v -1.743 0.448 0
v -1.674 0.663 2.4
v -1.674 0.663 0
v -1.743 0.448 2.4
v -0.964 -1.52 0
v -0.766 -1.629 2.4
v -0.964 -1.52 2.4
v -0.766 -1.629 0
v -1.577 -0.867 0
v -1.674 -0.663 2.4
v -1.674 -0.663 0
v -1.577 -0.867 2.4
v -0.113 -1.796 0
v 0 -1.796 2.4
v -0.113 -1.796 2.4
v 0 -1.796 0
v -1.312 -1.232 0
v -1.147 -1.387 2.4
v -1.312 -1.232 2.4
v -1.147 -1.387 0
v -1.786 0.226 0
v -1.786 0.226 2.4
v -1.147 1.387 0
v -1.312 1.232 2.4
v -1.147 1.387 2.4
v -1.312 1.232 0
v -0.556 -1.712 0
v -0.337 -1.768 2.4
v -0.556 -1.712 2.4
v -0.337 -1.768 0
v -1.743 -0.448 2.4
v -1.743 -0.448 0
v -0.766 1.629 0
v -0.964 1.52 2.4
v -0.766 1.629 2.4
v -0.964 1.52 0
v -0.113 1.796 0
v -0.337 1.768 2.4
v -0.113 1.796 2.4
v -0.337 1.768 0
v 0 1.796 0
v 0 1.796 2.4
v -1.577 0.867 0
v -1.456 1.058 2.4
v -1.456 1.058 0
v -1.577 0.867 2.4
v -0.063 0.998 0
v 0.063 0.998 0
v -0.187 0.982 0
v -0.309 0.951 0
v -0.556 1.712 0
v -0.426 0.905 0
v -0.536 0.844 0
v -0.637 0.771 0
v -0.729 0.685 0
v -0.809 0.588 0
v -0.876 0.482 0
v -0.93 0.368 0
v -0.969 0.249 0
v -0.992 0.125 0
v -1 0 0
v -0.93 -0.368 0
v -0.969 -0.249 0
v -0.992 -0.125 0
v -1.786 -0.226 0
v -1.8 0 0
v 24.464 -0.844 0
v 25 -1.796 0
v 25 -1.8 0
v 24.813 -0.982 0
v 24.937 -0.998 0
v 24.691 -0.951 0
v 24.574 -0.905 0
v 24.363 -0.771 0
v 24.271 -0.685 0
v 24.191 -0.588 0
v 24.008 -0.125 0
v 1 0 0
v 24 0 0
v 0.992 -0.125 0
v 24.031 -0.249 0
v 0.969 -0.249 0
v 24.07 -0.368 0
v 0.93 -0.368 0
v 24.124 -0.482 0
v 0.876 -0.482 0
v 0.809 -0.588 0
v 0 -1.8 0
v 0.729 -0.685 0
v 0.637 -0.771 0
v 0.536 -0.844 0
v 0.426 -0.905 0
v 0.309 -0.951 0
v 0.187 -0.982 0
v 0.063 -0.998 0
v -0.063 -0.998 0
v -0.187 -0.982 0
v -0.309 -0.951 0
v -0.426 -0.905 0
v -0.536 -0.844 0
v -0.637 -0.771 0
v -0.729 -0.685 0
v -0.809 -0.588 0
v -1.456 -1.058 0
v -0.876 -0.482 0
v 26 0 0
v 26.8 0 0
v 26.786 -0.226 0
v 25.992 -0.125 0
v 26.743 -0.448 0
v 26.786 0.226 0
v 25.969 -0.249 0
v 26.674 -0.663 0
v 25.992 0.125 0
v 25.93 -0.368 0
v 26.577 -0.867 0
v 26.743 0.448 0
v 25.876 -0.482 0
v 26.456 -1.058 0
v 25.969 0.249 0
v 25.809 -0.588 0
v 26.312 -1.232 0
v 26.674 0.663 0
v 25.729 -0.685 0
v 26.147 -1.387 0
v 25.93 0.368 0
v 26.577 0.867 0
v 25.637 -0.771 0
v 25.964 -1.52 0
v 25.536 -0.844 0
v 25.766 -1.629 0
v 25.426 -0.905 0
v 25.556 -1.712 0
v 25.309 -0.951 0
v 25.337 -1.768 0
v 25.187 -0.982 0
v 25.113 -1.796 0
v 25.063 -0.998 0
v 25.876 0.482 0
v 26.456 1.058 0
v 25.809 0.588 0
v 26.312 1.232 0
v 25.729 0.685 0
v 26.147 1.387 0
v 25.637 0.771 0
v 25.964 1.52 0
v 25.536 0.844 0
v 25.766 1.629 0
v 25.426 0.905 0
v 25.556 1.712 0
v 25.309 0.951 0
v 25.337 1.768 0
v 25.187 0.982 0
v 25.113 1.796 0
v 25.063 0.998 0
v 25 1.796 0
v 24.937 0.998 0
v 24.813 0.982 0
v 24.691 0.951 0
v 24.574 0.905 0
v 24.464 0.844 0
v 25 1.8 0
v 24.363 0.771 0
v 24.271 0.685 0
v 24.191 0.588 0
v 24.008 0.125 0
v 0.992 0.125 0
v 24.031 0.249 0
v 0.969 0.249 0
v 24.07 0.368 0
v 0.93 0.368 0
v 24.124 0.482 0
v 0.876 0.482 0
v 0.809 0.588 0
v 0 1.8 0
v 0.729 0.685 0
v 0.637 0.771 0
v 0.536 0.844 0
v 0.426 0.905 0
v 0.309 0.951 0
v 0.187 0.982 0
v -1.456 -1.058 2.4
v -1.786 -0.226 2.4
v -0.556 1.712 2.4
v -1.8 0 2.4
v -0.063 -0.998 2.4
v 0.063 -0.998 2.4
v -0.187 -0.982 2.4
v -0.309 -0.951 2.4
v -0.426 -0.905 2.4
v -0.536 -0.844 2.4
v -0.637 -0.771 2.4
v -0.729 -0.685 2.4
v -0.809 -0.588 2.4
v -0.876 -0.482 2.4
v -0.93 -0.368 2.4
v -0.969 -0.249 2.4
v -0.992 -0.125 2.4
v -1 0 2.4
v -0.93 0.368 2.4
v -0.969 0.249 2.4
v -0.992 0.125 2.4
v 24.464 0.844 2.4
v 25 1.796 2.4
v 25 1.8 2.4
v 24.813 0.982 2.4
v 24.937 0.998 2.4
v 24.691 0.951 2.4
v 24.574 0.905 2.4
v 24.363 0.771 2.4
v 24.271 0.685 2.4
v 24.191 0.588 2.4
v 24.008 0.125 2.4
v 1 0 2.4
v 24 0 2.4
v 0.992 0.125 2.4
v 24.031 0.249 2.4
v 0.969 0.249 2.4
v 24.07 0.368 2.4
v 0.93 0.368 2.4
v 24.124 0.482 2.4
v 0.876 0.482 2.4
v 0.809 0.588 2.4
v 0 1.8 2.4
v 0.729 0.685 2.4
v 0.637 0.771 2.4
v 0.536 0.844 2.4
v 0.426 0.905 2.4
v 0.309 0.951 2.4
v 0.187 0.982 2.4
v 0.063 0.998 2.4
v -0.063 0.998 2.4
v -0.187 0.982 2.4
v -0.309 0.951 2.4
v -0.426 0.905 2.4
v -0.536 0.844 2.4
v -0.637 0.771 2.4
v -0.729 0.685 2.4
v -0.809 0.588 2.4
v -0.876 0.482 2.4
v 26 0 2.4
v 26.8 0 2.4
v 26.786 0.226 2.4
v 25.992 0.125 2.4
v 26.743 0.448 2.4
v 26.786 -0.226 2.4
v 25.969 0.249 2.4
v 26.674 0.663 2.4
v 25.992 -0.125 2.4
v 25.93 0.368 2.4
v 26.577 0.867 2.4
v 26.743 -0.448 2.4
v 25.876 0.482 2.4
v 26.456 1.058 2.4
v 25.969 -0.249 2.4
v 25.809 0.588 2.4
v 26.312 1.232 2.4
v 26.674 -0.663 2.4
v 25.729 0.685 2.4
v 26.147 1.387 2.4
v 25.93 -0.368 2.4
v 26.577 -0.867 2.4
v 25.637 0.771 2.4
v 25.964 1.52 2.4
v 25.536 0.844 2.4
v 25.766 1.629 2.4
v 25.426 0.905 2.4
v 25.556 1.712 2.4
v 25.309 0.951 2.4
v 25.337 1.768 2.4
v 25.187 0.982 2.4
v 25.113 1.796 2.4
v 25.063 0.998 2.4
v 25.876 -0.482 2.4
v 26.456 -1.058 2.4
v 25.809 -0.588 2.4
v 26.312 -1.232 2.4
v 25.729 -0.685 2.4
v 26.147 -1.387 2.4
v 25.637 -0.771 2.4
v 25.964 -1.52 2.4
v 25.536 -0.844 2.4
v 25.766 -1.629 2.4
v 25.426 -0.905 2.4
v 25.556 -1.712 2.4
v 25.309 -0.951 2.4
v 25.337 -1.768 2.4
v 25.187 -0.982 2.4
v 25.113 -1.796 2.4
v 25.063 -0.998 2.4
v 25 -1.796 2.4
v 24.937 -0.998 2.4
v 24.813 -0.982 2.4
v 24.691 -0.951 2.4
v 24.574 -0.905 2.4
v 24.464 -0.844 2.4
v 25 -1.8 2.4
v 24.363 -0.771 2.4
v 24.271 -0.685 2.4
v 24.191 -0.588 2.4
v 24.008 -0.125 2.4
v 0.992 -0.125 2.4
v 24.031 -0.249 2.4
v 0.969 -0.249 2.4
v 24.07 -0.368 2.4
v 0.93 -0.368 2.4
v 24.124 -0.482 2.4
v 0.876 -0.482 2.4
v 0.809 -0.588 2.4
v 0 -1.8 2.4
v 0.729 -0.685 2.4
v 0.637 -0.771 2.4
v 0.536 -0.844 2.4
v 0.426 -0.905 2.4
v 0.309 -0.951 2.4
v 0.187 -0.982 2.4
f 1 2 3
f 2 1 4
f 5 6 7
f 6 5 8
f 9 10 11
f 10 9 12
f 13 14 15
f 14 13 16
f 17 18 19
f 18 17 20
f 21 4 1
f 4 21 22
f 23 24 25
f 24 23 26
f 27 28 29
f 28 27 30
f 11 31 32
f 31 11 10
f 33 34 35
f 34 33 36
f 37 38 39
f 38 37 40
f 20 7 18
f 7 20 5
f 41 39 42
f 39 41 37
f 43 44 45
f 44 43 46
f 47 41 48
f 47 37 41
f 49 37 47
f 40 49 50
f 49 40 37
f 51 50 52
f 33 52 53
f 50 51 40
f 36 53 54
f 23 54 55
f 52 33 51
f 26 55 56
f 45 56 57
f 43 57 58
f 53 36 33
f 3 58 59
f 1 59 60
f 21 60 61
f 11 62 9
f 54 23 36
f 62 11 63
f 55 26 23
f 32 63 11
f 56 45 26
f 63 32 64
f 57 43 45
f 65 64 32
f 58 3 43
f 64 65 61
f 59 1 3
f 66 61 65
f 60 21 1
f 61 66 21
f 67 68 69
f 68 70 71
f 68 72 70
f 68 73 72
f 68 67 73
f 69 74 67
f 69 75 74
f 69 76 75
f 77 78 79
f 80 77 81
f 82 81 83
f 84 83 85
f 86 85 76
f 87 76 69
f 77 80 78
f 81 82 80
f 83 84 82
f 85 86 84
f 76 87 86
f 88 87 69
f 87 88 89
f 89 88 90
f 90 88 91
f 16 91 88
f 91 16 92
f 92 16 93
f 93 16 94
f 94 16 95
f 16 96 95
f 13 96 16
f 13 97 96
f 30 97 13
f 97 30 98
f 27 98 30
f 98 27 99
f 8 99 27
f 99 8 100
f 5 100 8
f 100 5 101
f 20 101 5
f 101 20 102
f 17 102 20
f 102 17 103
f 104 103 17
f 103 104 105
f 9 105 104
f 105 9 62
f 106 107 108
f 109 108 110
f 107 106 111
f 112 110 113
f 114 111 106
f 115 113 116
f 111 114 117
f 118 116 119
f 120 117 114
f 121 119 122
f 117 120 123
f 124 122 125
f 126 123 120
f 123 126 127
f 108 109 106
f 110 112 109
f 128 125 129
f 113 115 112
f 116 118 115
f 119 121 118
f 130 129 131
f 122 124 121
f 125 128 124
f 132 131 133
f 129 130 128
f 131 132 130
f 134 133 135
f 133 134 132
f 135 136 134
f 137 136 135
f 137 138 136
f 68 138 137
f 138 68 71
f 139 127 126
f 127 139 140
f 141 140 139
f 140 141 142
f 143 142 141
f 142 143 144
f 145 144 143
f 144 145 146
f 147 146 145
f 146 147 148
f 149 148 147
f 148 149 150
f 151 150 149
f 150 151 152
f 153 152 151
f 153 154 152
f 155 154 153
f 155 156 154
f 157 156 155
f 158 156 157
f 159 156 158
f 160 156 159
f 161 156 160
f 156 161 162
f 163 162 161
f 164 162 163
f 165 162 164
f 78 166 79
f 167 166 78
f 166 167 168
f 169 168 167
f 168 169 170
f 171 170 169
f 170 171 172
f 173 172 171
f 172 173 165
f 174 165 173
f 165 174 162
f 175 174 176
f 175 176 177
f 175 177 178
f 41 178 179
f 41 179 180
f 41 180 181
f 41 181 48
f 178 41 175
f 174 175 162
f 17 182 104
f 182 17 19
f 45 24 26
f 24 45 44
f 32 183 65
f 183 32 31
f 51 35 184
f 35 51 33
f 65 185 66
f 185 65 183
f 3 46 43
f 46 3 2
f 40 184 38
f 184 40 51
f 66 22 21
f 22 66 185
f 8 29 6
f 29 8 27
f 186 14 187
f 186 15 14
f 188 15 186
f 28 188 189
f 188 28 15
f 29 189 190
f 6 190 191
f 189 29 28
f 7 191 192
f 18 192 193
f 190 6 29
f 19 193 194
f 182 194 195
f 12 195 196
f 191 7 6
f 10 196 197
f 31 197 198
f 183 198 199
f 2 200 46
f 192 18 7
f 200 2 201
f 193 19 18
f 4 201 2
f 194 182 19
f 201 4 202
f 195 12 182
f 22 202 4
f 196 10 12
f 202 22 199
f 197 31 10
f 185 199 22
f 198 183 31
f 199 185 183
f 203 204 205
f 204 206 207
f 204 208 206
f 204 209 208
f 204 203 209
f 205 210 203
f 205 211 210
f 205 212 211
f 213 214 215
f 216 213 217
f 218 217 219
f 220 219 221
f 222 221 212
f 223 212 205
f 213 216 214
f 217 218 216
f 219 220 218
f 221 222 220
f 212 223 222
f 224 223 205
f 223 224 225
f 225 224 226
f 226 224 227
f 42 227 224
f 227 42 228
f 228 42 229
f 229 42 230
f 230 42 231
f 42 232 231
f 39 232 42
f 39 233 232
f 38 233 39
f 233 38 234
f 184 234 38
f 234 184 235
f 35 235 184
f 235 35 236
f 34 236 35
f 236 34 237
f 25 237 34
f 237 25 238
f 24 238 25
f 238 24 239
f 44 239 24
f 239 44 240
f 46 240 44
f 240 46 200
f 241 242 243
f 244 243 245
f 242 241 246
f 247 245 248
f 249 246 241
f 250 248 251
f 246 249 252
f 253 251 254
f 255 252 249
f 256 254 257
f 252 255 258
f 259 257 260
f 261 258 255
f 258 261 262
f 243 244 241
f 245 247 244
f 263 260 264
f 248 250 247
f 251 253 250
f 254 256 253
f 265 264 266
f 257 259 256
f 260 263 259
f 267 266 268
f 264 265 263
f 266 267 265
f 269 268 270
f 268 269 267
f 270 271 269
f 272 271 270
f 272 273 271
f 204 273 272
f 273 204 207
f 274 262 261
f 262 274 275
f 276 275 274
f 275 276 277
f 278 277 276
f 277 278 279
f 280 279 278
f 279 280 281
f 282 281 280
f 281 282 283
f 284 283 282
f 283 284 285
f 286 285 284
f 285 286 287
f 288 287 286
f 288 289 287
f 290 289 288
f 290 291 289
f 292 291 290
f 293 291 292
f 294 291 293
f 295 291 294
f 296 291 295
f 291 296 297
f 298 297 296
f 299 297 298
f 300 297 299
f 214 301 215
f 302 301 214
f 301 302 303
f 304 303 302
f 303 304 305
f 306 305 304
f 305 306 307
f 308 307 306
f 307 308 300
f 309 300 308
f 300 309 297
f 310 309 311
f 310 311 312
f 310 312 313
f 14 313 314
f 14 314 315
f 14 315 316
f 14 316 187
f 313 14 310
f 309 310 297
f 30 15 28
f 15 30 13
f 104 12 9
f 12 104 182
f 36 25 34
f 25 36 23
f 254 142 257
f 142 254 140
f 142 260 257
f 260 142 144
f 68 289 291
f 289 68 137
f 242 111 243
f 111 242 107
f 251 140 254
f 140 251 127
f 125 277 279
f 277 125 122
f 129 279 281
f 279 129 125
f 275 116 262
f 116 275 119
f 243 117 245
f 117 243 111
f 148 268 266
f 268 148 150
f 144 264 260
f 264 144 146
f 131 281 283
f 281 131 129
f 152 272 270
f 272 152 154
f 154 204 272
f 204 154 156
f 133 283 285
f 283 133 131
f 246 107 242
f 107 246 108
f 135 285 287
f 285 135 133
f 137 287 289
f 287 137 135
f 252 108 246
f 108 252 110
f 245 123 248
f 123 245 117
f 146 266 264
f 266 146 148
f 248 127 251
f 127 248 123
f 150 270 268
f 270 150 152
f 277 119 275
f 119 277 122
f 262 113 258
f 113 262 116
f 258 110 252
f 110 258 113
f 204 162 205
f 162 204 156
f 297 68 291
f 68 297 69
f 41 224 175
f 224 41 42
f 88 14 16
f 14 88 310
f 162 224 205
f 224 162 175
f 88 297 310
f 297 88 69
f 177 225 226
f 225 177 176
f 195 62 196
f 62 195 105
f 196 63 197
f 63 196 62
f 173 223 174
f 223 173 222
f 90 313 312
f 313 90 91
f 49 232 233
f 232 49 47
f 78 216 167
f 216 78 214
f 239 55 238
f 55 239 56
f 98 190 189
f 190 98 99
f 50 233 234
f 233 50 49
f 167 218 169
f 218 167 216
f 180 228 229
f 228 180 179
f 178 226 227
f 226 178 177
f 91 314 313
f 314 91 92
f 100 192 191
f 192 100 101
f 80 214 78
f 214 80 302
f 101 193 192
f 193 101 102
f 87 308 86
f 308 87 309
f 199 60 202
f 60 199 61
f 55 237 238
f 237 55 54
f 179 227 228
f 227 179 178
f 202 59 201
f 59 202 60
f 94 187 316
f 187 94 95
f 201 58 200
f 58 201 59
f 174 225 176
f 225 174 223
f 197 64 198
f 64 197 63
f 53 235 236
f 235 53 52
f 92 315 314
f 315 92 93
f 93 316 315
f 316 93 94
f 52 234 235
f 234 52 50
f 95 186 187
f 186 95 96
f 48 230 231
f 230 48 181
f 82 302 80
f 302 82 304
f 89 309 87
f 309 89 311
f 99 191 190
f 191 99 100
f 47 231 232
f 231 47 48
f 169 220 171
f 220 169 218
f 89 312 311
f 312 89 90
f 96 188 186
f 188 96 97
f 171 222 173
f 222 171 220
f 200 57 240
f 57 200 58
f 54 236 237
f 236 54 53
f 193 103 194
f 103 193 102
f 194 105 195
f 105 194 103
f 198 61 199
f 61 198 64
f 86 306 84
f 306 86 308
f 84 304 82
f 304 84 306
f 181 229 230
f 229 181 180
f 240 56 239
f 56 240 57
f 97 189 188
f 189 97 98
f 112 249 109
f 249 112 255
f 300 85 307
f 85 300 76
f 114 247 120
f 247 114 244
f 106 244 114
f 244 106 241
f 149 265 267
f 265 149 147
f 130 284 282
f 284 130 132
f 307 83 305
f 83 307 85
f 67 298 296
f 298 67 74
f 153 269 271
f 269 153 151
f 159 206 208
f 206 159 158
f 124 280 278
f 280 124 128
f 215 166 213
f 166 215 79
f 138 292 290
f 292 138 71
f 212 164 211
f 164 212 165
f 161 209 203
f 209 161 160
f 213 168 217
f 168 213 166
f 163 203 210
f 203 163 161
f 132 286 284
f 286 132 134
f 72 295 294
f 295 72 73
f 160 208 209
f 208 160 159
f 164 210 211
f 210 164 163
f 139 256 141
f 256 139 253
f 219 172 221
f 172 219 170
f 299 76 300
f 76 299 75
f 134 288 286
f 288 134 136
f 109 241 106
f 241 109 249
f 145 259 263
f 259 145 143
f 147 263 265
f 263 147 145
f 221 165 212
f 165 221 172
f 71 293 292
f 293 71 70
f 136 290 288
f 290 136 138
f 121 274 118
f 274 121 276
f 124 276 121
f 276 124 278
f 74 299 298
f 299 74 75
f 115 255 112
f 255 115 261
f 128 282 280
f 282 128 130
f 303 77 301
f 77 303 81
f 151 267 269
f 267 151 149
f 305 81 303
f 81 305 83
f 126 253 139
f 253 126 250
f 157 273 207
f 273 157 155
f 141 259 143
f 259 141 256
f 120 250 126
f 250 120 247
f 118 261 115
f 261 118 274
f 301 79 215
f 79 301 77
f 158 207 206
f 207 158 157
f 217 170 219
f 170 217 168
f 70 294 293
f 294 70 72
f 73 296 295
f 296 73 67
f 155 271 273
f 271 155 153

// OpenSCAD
$fn = 50;
axisDistance = 25;
thickness = 2.4;
holeDiameter = 2;


width = 2*0.8+ holeDiameter;

difference()
{
union()
{
    cylinder(h = thickness, d = width);
    
    translate([axisDistance,0,0])cylinder(h = thickness, d = width);
    
    translate([0,-width/2,0])cube([axisDistance,width,thickness]);
    
}// union

cylinder(h = thickness, d = holeDiameter);

translate([axisDistance,0,0])cylinder(h = thickness, d = holeDiameter);



}//difference
